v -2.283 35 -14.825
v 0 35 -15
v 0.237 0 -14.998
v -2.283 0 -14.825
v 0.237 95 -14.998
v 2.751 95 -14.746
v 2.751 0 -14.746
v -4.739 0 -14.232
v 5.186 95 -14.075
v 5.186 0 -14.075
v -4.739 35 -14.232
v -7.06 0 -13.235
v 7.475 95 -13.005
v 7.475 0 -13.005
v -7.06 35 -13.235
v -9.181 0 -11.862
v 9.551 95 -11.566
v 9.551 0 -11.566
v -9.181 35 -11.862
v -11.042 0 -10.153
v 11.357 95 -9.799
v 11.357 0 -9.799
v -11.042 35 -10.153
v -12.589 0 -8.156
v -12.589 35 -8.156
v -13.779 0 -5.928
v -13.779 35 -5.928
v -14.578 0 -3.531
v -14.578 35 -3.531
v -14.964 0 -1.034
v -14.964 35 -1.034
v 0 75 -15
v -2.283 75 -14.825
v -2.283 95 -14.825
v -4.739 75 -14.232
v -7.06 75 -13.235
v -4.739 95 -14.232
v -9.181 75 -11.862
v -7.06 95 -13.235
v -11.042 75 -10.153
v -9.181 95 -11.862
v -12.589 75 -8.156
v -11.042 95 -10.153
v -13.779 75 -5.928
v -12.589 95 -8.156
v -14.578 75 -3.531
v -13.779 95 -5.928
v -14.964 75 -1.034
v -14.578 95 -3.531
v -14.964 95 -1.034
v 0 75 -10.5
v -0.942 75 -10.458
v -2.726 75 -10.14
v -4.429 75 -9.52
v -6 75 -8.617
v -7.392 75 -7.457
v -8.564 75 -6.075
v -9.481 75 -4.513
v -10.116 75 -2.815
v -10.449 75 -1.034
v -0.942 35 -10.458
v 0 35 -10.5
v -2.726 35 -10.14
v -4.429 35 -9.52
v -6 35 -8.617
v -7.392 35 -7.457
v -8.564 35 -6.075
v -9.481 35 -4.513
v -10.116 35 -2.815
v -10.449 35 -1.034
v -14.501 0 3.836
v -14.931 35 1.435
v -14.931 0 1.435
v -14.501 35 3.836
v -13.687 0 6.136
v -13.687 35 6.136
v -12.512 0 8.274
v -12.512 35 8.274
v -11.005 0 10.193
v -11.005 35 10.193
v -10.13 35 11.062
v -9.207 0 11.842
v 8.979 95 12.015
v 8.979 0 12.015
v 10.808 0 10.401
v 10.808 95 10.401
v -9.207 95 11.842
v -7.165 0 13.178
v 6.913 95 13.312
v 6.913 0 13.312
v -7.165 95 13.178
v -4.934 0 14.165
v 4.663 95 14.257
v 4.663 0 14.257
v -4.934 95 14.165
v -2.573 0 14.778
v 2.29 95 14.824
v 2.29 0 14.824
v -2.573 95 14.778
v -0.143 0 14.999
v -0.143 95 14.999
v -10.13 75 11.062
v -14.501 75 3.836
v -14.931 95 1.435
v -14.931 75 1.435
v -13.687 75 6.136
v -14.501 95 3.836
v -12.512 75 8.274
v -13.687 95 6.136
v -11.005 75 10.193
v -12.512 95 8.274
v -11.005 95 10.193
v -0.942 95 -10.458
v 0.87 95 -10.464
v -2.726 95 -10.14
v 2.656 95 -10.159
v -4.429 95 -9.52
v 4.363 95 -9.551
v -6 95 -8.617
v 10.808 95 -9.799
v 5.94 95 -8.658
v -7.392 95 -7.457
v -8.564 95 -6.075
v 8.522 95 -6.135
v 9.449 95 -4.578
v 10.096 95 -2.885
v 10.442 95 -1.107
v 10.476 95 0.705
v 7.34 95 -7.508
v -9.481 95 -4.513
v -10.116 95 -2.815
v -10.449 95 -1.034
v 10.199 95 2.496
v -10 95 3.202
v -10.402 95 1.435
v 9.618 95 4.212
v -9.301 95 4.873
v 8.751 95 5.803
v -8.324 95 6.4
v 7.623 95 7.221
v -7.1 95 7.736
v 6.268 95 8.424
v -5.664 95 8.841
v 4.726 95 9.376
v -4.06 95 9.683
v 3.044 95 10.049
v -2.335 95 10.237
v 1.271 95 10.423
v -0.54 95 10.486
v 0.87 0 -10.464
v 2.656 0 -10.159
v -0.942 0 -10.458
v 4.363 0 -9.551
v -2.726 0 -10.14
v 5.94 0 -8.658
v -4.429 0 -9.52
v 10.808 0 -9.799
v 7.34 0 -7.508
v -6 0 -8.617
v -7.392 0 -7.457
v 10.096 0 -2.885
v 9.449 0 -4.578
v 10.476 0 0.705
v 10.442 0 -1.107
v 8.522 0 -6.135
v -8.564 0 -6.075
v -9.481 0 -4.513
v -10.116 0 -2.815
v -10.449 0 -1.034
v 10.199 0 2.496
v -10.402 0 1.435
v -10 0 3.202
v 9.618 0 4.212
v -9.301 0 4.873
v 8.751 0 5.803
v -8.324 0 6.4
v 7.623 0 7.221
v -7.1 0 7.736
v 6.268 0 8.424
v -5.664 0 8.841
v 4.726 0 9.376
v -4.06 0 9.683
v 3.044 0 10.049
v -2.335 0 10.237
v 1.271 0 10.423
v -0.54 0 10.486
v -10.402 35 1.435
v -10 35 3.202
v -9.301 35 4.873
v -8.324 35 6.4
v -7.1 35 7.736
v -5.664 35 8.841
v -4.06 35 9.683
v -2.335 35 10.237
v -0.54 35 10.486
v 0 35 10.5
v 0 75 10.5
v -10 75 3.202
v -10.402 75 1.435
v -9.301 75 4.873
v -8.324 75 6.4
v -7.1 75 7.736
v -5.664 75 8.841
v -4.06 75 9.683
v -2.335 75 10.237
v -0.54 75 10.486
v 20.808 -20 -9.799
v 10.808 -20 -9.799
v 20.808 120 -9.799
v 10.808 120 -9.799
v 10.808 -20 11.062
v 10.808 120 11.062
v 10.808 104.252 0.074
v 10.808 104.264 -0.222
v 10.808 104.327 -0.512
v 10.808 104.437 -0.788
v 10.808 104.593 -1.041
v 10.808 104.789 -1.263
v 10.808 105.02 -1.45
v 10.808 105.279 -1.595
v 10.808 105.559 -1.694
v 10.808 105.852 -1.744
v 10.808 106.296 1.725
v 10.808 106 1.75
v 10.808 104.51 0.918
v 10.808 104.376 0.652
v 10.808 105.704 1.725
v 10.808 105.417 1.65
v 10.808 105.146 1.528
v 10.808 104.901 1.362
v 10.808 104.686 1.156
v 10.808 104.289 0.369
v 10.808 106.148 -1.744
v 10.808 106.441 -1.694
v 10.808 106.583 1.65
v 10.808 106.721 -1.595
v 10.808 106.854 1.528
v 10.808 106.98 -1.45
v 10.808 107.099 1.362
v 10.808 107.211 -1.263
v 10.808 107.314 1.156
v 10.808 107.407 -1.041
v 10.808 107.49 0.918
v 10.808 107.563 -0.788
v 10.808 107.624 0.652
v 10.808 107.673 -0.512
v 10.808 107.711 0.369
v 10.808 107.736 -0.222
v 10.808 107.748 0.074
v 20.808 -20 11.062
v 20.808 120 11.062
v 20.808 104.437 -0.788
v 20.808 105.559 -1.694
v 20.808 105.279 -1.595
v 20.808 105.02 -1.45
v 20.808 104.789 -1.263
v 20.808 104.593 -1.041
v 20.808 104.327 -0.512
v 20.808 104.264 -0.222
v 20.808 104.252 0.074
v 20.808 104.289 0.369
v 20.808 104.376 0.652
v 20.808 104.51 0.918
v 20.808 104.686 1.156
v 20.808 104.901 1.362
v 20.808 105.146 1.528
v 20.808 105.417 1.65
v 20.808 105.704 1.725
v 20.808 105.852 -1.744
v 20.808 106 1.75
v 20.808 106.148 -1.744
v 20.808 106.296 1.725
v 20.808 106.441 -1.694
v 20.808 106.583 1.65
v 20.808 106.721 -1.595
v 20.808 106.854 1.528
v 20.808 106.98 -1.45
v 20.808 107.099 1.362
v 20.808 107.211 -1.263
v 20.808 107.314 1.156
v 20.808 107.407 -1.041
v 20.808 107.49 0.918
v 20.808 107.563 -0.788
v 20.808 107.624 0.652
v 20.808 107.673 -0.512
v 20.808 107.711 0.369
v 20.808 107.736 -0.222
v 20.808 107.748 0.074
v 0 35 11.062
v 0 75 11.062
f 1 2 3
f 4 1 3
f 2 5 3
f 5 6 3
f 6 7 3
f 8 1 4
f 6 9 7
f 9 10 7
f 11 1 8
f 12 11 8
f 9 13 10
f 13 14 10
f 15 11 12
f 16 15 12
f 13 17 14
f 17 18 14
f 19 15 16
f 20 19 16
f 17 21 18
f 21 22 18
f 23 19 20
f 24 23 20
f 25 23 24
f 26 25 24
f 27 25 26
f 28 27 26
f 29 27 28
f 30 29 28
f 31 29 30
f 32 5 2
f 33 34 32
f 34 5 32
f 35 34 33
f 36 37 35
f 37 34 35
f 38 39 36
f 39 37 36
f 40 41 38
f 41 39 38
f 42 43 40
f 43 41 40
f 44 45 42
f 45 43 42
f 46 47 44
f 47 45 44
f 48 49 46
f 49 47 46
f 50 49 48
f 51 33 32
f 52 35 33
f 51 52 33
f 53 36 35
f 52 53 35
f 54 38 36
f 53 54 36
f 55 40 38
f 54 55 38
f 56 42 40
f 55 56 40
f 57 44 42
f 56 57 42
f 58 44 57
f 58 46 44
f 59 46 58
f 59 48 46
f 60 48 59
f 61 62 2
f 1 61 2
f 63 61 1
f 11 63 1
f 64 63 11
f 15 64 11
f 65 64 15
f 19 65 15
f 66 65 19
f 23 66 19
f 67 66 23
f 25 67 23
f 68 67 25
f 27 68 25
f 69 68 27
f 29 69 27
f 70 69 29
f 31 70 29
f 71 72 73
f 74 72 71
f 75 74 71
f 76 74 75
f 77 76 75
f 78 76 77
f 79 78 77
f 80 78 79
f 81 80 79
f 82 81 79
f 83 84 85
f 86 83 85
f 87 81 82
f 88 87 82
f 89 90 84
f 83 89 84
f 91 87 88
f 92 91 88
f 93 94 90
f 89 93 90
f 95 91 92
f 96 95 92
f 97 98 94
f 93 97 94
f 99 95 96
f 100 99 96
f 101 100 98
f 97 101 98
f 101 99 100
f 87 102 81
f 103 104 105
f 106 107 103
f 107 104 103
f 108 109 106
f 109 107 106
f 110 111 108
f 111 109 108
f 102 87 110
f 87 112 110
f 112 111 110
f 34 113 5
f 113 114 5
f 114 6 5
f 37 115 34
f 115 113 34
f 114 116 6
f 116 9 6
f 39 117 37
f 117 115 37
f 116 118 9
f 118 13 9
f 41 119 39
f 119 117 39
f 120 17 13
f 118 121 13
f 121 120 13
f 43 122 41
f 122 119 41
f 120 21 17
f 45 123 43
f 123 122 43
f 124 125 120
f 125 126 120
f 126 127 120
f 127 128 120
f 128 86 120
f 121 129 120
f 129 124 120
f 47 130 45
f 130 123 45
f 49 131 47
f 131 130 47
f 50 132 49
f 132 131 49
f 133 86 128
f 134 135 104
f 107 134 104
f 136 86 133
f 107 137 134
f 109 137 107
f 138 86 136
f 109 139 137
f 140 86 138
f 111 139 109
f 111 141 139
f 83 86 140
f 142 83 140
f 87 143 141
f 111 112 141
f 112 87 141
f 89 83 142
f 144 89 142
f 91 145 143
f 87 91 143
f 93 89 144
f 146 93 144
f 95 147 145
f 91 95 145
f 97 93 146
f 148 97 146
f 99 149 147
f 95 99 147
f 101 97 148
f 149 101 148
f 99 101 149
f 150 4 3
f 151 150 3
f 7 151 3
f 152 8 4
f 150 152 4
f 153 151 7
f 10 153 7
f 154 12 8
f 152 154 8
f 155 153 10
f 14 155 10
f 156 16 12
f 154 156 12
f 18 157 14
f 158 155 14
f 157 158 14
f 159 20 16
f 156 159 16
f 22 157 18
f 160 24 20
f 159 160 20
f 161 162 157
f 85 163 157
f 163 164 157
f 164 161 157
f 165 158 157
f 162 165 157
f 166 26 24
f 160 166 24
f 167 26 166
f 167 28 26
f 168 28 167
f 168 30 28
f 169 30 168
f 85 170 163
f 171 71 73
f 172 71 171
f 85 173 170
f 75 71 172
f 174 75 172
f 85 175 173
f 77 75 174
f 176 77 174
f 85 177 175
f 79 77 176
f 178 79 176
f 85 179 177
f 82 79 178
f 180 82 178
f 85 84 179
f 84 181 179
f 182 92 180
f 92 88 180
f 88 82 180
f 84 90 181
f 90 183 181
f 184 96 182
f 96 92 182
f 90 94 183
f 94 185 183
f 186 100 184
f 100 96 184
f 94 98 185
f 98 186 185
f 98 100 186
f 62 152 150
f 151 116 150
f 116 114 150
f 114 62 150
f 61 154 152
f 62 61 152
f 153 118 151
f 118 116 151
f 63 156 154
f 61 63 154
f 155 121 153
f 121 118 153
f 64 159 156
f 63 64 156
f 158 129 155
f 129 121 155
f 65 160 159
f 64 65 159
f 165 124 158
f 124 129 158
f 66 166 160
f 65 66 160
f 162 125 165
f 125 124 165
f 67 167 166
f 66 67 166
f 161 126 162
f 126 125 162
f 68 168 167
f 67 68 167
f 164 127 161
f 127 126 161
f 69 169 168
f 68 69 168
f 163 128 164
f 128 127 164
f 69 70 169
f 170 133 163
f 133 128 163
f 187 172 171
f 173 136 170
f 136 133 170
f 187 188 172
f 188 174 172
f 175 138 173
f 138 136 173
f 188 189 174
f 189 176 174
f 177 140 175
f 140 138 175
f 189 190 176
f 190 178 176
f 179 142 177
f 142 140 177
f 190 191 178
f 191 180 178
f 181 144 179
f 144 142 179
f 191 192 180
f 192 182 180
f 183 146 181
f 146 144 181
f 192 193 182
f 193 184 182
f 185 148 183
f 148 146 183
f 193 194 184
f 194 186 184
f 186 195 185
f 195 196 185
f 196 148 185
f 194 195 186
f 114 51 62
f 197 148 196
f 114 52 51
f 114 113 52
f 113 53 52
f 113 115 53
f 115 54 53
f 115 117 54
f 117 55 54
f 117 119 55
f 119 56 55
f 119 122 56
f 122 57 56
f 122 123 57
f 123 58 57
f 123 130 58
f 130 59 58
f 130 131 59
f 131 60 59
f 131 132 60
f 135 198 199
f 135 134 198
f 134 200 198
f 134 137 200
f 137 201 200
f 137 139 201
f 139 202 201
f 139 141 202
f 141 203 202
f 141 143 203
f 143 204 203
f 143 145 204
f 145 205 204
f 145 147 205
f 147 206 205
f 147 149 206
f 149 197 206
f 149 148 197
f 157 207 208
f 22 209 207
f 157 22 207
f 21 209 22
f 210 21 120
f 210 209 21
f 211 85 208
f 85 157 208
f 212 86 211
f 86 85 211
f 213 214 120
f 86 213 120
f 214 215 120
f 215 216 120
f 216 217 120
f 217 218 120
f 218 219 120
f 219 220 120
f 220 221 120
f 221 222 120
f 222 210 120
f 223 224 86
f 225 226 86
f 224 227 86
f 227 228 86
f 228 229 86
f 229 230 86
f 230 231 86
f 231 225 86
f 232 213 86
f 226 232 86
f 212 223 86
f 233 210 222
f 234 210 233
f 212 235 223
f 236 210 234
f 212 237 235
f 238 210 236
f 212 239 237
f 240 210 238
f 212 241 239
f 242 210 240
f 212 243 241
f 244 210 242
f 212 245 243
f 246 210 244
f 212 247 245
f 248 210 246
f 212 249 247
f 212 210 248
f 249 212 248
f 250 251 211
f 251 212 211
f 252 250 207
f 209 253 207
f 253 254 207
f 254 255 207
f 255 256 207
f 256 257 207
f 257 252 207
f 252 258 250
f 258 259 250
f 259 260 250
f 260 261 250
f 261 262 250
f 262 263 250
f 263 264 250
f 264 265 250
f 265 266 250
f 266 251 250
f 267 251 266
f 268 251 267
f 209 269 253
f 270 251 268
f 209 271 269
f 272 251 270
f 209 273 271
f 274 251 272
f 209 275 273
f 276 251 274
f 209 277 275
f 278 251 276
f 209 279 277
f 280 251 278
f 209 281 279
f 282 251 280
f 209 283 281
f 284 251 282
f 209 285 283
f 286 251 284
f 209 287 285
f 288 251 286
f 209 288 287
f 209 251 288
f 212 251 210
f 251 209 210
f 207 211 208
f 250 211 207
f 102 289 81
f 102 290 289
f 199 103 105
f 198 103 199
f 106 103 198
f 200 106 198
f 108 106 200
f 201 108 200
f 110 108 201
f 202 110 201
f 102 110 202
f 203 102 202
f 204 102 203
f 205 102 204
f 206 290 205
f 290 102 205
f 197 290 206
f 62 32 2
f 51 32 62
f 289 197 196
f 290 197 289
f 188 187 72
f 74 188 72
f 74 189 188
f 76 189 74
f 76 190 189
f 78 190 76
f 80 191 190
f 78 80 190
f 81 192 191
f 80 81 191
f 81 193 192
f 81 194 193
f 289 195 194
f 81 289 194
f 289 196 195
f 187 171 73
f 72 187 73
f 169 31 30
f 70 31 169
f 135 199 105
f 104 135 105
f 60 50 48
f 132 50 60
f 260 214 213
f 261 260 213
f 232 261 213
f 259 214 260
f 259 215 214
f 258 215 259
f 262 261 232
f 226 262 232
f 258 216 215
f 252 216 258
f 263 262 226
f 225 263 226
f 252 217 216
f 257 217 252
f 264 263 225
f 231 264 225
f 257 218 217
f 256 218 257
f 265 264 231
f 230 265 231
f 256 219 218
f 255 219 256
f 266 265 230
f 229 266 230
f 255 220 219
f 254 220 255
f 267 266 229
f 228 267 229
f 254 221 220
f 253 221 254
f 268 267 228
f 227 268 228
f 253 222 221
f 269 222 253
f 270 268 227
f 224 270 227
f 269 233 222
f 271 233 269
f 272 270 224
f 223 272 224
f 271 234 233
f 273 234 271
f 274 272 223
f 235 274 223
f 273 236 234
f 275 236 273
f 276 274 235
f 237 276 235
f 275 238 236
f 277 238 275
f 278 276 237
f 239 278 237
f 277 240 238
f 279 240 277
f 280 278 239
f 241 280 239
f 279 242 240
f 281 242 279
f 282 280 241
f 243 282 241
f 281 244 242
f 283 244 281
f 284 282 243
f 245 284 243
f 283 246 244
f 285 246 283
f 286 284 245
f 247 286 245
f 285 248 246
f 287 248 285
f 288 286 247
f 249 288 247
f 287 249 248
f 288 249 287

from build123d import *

# Parameters (mm, degrees)
SKETCH_1_R           = 15
EXTRUDE_1_DEPTH      = 95
SKETCH_2_R           = 10.5
CUT_EXTRUDE_1_DEPTH  = 95
EXTRUDE_2_DEPTH      = 20
EXTRUDE_2_DEPTH_BACK = 120
SKETCH_3_W           = 10
SKETCH_3_H           = 20.861334049
SKETCH_7_W           = 15
SKETCH_7_H           = 40
CUT_EXTRUDE_3_DEPTH  = 125.54811794
SKETCH_8_W           = 8.046060948
SKETCH_8_H           = 2.469161561
CUT_EXTRUDE_4_DEPTH  = 118.826105551
SKETCH_10_R          = 1.75
CUT_EXTRUDE_5_DEPTH  = 124.649640842


with BuildPart() as part:
    # 草图1 → 凸台-拉伸1 (new body)
    with BuildSketch(Plane(origin=(0, 0, 0), x_dir=(1, 0, 0), z_dir=(0, 1, 0))):
        with Locations(Location((0, 0, 0), (0, 0, 270))):
            Circle(SKETCH_1_R)
    extrude(amount=EXTRUDE_1_DEPTH)

    # 草图2 → 切除-拉伸1 (cut)
    with BuildSketch(Plane(origin=(0, 95, 0), x_dir=(1, 0, 0), z_dir=(0, 1, 0))):
        with Locations(Location((0, 0, 0), (0, 0, 270))):
            Circle(SKETCH_2_R)
    extrude(amount=-CUT_EXTRUDE_1_DEPTH, mode=Mode.SUBTRACT)

    # 草图3 → 凸台-拉伸2 (add, two sides: drawn at the far end of the back side and taken through both)
    with BuildSketch(Plane(origin=(0, 0, 0), x_dir=(-1, 0, 0), z_dir=(0, -1, 0)).offset(-EXTRUDE_2_DEPTH_BACK)):
        with Locations((-15.808439379, -0.631614786)):
            Rectangle(SKETCH_3_W, SKETCH_3_H)
    extrude(amount=EXTRUDE_2_DEPTH + EXTRUDE_2_DEPTH_BACK)

    # 草图7 → 切除-拉伸3 (cut, through all)
    with BuildSketch(Plane.XY.offset(11.06228181)):
        with Locations((-7.5, 55)):
            Rectangle(SKETCH_7_W, SKETCH_7_H)
    extrude(amount=-CUT_EXTRUDE_3_DEPTH, mode=Mode.SUBTRACT)

    # 草图8 → 切除-拉伸4 (cut, through all)
    with BuildSketch(Plane(origin=(0, 95, 0), x_dir=(1, 0, 0), z_dir=(0, 1, 0))):
        with Locations((-13.909114393, -0.200189033)):
            Rectangle(SKETCH_8_W, SKETCH_8_H)
    extrude(amount=-CUT_EXTRUDE_4_DEPTH, mode=Mode.SUBTRACT)

    # 草图10 → 切除-拉伸5 (cut, through all)
    with BuildSketch(Plane.ZY.offset(-10.808439379)):
        with Locations((0, 106)):
            Circle(SKETCH_10_R)
    extrude(amount=-CUT_EXTRUDE_5_DEPTH, mode=Mode.SUBTRACT)


solid = part.part
